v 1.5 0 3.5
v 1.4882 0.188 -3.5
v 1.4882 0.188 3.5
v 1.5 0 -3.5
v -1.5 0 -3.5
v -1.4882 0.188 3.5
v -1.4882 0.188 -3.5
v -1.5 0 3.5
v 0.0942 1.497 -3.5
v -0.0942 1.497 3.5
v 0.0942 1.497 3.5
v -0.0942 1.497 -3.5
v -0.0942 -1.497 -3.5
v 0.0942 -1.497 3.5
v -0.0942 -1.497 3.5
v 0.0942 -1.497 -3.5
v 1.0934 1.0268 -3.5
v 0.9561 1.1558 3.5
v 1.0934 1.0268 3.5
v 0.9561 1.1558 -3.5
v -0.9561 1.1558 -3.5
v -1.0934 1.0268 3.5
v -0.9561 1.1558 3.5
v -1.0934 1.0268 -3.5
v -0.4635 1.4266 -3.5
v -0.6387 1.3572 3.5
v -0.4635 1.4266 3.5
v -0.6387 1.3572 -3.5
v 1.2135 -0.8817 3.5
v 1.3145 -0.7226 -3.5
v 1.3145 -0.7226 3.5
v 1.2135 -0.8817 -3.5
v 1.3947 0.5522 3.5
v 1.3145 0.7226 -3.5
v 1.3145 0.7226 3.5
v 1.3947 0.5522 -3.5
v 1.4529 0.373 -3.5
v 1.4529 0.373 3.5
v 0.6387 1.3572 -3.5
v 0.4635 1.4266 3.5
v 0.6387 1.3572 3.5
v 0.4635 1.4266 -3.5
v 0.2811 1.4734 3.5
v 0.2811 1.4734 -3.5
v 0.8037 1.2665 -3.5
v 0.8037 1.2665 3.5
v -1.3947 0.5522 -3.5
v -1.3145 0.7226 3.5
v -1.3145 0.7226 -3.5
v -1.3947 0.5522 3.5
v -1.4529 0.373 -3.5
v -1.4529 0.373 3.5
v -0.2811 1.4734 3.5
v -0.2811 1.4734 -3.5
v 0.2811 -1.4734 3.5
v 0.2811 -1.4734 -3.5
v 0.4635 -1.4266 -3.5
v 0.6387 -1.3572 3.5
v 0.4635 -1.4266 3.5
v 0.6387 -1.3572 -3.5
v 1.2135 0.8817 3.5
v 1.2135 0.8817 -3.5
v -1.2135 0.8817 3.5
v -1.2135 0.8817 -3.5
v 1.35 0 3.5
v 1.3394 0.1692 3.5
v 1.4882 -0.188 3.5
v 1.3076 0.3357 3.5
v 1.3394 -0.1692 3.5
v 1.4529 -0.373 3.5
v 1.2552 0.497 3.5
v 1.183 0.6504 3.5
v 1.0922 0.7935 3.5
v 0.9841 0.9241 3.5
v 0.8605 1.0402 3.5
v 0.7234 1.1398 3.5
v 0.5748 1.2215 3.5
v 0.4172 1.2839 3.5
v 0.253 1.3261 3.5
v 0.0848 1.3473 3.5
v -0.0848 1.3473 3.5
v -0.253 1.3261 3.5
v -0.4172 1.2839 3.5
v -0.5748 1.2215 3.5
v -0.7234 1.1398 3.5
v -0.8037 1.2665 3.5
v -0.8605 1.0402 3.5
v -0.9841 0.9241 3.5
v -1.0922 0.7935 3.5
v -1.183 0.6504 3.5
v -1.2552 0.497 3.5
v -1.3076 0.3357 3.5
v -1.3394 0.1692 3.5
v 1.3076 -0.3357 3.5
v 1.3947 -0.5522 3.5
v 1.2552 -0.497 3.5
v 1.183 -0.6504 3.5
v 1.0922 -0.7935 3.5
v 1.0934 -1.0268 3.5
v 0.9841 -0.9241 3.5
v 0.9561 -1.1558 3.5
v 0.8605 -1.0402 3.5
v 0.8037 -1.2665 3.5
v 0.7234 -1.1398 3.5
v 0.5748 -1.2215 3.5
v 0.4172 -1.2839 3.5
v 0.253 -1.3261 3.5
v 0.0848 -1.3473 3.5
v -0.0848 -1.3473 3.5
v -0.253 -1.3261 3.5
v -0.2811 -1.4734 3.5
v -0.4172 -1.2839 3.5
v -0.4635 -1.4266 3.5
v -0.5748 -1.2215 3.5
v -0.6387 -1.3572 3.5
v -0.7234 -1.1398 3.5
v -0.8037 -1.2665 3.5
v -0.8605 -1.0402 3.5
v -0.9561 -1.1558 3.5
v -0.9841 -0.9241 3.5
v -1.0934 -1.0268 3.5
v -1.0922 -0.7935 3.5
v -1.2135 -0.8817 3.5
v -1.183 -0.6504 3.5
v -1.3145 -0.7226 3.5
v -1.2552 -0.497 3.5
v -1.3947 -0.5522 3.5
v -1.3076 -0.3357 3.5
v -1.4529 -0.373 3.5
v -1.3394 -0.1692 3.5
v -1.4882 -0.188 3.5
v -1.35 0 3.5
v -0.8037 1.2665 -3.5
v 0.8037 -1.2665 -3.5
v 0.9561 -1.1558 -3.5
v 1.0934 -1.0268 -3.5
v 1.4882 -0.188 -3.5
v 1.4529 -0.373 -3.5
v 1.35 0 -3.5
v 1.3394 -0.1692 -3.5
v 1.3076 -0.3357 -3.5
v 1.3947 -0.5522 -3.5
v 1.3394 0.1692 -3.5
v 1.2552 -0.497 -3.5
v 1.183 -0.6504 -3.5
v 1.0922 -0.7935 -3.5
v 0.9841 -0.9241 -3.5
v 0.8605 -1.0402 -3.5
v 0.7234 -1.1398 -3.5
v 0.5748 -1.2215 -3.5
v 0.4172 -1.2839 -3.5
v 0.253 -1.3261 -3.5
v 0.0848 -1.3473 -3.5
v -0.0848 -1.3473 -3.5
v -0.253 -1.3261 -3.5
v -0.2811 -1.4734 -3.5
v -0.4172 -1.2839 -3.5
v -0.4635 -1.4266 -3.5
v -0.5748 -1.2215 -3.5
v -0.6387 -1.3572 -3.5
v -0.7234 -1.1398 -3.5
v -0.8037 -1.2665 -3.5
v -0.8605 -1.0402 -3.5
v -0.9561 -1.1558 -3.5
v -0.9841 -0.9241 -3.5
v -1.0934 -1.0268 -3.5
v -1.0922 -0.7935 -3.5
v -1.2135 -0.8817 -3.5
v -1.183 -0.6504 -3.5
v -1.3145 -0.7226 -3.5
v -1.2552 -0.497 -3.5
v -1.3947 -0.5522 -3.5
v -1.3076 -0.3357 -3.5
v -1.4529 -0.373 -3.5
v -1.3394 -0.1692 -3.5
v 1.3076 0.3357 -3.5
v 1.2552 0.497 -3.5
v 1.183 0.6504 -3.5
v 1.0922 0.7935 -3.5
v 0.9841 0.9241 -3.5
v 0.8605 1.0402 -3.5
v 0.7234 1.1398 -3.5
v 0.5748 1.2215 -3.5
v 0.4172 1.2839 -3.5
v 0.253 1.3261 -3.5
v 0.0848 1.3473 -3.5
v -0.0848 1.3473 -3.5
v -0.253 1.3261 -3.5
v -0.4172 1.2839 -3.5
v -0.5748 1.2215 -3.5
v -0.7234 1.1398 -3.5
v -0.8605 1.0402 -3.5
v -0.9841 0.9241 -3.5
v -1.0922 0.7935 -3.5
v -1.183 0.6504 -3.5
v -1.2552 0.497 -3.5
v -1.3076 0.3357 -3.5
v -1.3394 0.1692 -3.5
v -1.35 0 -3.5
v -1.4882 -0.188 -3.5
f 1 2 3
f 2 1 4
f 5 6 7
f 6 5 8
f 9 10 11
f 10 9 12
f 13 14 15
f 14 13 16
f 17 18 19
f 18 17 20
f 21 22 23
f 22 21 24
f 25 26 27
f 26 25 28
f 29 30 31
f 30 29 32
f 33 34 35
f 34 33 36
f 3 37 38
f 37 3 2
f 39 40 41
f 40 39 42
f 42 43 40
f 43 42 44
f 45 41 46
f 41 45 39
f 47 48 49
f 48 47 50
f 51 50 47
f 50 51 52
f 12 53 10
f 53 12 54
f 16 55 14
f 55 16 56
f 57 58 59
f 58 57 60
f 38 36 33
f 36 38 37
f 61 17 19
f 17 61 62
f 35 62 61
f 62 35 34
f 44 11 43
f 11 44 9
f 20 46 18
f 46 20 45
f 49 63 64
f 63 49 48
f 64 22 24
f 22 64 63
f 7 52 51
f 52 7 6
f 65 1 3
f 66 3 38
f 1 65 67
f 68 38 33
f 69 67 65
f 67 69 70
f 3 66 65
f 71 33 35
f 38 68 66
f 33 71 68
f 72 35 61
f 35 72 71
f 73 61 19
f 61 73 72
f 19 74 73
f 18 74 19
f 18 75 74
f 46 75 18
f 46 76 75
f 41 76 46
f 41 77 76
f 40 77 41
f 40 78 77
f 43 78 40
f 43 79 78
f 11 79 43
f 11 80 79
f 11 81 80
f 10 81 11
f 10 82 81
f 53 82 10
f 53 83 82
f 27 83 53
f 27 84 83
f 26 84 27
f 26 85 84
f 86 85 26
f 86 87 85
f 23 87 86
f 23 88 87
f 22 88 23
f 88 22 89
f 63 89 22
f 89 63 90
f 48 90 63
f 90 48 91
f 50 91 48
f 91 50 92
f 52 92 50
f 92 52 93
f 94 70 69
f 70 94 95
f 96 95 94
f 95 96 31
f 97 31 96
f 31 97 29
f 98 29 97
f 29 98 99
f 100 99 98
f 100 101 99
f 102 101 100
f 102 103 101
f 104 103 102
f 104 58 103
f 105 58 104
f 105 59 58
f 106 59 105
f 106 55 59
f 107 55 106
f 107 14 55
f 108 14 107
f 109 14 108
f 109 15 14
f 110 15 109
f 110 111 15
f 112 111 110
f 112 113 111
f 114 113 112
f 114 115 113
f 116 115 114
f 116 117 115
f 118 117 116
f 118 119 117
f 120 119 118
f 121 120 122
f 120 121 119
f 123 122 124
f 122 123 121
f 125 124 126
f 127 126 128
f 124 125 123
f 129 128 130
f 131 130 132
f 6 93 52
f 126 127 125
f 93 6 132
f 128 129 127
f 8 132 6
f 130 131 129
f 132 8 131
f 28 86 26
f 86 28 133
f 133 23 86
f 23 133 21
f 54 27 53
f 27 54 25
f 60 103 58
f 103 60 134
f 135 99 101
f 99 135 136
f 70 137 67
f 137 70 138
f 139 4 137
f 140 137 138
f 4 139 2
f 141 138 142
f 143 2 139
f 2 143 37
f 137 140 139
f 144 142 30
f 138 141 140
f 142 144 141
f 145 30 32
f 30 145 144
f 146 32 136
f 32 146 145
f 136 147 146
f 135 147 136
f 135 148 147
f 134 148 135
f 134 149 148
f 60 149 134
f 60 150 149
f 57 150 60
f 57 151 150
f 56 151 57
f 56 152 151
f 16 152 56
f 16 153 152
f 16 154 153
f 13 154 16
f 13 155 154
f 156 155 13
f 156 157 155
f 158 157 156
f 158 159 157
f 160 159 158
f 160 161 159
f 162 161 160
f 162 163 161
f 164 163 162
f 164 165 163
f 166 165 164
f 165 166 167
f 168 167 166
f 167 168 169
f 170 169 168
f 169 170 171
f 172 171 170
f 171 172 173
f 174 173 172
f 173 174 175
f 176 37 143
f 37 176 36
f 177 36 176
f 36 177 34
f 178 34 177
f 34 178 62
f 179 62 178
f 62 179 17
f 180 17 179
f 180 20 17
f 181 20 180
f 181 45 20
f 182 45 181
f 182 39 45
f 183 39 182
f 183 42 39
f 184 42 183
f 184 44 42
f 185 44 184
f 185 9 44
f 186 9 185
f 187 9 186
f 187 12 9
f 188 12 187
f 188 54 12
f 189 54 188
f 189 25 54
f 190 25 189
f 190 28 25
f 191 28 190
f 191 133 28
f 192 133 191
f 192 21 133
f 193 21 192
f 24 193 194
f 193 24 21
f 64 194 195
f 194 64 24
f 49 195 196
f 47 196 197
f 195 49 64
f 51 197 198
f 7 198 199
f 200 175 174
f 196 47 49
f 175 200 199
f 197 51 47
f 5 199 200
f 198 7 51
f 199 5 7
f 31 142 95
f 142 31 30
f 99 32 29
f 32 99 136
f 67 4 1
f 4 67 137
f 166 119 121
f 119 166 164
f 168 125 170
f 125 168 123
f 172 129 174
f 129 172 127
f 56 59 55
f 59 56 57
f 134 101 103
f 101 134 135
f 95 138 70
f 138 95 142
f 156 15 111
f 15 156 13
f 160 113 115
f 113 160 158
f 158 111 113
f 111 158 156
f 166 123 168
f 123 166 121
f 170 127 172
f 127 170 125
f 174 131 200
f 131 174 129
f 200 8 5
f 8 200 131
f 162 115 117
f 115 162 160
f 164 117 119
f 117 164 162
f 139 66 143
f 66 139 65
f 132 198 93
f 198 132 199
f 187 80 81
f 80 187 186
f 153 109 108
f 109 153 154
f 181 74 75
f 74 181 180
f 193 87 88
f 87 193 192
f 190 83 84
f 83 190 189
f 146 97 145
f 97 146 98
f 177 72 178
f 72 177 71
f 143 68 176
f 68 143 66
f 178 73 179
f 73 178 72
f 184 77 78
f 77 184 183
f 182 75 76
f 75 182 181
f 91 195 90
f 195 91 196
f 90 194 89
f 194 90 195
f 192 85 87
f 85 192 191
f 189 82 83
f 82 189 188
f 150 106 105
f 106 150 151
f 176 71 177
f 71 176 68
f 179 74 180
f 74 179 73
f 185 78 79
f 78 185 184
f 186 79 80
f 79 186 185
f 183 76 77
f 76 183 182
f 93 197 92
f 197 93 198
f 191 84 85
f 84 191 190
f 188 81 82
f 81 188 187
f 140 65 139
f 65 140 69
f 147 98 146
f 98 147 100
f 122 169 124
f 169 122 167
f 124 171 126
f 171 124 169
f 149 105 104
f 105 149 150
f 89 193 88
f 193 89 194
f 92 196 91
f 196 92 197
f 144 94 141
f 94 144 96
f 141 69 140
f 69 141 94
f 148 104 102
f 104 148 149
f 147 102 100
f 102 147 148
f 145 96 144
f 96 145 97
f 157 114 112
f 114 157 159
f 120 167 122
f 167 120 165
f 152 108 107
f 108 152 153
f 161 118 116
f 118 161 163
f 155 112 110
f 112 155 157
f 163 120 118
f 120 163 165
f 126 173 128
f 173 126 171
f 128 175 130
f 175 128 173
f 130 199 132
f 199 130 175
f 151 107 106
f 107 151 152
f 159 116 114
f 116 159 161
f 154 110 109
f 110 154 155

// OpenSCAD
$fn = 50;


difference() {
	union() {
		translate(v = [0, 0, -3.5000000000]) {
			cylinder(h = 7, r = 1.5000000000);
		}
	}
	union() {
		translate(v = [0, 0, -100.0000000000]) {
			cylinder(h = 200, r = 1.3500000000);
		}
	}
}
